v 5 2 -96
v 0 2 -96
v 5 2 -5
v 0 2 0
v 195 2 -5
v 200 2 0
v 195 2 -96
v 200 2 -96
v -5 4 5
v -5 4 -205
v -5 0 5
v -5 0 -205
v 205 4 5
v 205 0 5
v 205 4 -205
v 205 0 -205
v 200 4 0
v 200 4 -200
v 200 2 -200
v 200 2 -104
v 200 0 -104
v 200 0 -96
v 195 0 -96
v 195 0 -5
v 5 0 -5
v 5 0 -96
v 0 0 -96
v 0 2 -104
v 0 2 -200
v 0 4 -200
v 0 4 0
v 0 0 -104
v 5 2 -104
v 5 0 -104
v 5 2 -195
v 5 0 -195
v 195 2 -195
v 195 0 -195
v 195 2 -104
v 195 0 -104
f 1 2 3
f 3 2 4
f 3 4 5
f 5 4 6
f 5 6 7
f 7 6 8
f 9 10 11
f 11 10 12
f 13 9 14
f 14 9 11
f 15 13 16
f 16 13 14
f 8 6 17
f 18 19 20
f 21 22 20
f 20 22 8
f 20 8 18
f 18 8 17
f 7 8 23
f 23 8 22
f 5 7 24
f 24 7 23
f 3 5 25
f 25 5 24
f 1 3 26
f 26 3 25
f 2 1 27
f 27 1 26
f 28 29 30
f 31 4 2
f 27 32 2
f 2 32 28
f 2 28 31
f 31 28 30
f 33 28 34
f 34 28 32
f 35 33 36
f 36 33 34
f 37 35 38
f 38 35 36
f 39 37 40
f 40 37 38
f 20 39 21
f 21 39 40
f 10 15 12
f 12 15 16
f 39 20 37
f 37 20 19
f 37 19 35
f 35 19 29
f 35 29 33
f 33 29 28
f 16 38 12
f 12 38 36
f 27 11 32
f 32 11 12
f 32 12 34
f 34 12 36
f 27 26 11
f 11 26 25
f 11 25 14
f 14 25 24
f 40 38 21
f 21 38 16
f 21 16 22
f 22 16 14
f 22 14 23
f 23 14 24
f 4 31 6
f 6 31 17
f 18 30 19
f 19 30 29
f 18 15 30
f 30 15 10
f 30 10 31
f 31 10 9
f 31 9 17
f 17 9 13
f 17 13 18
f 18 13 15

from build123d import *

# Parameters (mm, degrees)
SKETCH1_W           = 210
SKETCH1_H           = 210
BOSS_EXTRUDE1_DEPTH = 2
SKETCH1_4_W         = 210
SKETCH1_4_H         = 210
BOSS_EXTRUDE2_DEPTH = 4


with BuildPart() as part:
    # Sketch1 → Boss-Extrude1 (new body)
    with BuildSketch(Plane(origin=(0, 0, 0), x_dir=(1, 0, 0), z_dir=(0, 1, 0))):
        with Locations((100, 100)):
            Rectangle(SKETCH1_W, SKETCH1_H)
        Polygon((200, 104), (200, 96), (195, 96), (195, 5), (5, 5), (5, 96), (0, 96), (0, 104), (5, 104), (5, 195), (195, 195), (195, 104), align=None, mode=Mode.SUBTRACT)
    extrude(amount=BOSS_EXTRUDE1_DEPTH)

    # Sketch1<4> → Boss-Extrude2 (add)
    with BuildSketch(Plane(origin=(0, 0, 0), x_dir=(1, 0, 0), z_dir=(0, 1, 0))):
        with Locations((100, 100)):
            Rectangle(SKETCH1_4_W, SKETCH1_4_H)
        Polygon((200, 0), (0, 0), (0, 96), (0, 104), (0, 200), (200, 200), (200, 104), (200, 96), align=None, mode=Mode.SUBTRACT)
    extrude(amount=BOSS_EXTRUDE2_DEPTH)


solid = part.part
